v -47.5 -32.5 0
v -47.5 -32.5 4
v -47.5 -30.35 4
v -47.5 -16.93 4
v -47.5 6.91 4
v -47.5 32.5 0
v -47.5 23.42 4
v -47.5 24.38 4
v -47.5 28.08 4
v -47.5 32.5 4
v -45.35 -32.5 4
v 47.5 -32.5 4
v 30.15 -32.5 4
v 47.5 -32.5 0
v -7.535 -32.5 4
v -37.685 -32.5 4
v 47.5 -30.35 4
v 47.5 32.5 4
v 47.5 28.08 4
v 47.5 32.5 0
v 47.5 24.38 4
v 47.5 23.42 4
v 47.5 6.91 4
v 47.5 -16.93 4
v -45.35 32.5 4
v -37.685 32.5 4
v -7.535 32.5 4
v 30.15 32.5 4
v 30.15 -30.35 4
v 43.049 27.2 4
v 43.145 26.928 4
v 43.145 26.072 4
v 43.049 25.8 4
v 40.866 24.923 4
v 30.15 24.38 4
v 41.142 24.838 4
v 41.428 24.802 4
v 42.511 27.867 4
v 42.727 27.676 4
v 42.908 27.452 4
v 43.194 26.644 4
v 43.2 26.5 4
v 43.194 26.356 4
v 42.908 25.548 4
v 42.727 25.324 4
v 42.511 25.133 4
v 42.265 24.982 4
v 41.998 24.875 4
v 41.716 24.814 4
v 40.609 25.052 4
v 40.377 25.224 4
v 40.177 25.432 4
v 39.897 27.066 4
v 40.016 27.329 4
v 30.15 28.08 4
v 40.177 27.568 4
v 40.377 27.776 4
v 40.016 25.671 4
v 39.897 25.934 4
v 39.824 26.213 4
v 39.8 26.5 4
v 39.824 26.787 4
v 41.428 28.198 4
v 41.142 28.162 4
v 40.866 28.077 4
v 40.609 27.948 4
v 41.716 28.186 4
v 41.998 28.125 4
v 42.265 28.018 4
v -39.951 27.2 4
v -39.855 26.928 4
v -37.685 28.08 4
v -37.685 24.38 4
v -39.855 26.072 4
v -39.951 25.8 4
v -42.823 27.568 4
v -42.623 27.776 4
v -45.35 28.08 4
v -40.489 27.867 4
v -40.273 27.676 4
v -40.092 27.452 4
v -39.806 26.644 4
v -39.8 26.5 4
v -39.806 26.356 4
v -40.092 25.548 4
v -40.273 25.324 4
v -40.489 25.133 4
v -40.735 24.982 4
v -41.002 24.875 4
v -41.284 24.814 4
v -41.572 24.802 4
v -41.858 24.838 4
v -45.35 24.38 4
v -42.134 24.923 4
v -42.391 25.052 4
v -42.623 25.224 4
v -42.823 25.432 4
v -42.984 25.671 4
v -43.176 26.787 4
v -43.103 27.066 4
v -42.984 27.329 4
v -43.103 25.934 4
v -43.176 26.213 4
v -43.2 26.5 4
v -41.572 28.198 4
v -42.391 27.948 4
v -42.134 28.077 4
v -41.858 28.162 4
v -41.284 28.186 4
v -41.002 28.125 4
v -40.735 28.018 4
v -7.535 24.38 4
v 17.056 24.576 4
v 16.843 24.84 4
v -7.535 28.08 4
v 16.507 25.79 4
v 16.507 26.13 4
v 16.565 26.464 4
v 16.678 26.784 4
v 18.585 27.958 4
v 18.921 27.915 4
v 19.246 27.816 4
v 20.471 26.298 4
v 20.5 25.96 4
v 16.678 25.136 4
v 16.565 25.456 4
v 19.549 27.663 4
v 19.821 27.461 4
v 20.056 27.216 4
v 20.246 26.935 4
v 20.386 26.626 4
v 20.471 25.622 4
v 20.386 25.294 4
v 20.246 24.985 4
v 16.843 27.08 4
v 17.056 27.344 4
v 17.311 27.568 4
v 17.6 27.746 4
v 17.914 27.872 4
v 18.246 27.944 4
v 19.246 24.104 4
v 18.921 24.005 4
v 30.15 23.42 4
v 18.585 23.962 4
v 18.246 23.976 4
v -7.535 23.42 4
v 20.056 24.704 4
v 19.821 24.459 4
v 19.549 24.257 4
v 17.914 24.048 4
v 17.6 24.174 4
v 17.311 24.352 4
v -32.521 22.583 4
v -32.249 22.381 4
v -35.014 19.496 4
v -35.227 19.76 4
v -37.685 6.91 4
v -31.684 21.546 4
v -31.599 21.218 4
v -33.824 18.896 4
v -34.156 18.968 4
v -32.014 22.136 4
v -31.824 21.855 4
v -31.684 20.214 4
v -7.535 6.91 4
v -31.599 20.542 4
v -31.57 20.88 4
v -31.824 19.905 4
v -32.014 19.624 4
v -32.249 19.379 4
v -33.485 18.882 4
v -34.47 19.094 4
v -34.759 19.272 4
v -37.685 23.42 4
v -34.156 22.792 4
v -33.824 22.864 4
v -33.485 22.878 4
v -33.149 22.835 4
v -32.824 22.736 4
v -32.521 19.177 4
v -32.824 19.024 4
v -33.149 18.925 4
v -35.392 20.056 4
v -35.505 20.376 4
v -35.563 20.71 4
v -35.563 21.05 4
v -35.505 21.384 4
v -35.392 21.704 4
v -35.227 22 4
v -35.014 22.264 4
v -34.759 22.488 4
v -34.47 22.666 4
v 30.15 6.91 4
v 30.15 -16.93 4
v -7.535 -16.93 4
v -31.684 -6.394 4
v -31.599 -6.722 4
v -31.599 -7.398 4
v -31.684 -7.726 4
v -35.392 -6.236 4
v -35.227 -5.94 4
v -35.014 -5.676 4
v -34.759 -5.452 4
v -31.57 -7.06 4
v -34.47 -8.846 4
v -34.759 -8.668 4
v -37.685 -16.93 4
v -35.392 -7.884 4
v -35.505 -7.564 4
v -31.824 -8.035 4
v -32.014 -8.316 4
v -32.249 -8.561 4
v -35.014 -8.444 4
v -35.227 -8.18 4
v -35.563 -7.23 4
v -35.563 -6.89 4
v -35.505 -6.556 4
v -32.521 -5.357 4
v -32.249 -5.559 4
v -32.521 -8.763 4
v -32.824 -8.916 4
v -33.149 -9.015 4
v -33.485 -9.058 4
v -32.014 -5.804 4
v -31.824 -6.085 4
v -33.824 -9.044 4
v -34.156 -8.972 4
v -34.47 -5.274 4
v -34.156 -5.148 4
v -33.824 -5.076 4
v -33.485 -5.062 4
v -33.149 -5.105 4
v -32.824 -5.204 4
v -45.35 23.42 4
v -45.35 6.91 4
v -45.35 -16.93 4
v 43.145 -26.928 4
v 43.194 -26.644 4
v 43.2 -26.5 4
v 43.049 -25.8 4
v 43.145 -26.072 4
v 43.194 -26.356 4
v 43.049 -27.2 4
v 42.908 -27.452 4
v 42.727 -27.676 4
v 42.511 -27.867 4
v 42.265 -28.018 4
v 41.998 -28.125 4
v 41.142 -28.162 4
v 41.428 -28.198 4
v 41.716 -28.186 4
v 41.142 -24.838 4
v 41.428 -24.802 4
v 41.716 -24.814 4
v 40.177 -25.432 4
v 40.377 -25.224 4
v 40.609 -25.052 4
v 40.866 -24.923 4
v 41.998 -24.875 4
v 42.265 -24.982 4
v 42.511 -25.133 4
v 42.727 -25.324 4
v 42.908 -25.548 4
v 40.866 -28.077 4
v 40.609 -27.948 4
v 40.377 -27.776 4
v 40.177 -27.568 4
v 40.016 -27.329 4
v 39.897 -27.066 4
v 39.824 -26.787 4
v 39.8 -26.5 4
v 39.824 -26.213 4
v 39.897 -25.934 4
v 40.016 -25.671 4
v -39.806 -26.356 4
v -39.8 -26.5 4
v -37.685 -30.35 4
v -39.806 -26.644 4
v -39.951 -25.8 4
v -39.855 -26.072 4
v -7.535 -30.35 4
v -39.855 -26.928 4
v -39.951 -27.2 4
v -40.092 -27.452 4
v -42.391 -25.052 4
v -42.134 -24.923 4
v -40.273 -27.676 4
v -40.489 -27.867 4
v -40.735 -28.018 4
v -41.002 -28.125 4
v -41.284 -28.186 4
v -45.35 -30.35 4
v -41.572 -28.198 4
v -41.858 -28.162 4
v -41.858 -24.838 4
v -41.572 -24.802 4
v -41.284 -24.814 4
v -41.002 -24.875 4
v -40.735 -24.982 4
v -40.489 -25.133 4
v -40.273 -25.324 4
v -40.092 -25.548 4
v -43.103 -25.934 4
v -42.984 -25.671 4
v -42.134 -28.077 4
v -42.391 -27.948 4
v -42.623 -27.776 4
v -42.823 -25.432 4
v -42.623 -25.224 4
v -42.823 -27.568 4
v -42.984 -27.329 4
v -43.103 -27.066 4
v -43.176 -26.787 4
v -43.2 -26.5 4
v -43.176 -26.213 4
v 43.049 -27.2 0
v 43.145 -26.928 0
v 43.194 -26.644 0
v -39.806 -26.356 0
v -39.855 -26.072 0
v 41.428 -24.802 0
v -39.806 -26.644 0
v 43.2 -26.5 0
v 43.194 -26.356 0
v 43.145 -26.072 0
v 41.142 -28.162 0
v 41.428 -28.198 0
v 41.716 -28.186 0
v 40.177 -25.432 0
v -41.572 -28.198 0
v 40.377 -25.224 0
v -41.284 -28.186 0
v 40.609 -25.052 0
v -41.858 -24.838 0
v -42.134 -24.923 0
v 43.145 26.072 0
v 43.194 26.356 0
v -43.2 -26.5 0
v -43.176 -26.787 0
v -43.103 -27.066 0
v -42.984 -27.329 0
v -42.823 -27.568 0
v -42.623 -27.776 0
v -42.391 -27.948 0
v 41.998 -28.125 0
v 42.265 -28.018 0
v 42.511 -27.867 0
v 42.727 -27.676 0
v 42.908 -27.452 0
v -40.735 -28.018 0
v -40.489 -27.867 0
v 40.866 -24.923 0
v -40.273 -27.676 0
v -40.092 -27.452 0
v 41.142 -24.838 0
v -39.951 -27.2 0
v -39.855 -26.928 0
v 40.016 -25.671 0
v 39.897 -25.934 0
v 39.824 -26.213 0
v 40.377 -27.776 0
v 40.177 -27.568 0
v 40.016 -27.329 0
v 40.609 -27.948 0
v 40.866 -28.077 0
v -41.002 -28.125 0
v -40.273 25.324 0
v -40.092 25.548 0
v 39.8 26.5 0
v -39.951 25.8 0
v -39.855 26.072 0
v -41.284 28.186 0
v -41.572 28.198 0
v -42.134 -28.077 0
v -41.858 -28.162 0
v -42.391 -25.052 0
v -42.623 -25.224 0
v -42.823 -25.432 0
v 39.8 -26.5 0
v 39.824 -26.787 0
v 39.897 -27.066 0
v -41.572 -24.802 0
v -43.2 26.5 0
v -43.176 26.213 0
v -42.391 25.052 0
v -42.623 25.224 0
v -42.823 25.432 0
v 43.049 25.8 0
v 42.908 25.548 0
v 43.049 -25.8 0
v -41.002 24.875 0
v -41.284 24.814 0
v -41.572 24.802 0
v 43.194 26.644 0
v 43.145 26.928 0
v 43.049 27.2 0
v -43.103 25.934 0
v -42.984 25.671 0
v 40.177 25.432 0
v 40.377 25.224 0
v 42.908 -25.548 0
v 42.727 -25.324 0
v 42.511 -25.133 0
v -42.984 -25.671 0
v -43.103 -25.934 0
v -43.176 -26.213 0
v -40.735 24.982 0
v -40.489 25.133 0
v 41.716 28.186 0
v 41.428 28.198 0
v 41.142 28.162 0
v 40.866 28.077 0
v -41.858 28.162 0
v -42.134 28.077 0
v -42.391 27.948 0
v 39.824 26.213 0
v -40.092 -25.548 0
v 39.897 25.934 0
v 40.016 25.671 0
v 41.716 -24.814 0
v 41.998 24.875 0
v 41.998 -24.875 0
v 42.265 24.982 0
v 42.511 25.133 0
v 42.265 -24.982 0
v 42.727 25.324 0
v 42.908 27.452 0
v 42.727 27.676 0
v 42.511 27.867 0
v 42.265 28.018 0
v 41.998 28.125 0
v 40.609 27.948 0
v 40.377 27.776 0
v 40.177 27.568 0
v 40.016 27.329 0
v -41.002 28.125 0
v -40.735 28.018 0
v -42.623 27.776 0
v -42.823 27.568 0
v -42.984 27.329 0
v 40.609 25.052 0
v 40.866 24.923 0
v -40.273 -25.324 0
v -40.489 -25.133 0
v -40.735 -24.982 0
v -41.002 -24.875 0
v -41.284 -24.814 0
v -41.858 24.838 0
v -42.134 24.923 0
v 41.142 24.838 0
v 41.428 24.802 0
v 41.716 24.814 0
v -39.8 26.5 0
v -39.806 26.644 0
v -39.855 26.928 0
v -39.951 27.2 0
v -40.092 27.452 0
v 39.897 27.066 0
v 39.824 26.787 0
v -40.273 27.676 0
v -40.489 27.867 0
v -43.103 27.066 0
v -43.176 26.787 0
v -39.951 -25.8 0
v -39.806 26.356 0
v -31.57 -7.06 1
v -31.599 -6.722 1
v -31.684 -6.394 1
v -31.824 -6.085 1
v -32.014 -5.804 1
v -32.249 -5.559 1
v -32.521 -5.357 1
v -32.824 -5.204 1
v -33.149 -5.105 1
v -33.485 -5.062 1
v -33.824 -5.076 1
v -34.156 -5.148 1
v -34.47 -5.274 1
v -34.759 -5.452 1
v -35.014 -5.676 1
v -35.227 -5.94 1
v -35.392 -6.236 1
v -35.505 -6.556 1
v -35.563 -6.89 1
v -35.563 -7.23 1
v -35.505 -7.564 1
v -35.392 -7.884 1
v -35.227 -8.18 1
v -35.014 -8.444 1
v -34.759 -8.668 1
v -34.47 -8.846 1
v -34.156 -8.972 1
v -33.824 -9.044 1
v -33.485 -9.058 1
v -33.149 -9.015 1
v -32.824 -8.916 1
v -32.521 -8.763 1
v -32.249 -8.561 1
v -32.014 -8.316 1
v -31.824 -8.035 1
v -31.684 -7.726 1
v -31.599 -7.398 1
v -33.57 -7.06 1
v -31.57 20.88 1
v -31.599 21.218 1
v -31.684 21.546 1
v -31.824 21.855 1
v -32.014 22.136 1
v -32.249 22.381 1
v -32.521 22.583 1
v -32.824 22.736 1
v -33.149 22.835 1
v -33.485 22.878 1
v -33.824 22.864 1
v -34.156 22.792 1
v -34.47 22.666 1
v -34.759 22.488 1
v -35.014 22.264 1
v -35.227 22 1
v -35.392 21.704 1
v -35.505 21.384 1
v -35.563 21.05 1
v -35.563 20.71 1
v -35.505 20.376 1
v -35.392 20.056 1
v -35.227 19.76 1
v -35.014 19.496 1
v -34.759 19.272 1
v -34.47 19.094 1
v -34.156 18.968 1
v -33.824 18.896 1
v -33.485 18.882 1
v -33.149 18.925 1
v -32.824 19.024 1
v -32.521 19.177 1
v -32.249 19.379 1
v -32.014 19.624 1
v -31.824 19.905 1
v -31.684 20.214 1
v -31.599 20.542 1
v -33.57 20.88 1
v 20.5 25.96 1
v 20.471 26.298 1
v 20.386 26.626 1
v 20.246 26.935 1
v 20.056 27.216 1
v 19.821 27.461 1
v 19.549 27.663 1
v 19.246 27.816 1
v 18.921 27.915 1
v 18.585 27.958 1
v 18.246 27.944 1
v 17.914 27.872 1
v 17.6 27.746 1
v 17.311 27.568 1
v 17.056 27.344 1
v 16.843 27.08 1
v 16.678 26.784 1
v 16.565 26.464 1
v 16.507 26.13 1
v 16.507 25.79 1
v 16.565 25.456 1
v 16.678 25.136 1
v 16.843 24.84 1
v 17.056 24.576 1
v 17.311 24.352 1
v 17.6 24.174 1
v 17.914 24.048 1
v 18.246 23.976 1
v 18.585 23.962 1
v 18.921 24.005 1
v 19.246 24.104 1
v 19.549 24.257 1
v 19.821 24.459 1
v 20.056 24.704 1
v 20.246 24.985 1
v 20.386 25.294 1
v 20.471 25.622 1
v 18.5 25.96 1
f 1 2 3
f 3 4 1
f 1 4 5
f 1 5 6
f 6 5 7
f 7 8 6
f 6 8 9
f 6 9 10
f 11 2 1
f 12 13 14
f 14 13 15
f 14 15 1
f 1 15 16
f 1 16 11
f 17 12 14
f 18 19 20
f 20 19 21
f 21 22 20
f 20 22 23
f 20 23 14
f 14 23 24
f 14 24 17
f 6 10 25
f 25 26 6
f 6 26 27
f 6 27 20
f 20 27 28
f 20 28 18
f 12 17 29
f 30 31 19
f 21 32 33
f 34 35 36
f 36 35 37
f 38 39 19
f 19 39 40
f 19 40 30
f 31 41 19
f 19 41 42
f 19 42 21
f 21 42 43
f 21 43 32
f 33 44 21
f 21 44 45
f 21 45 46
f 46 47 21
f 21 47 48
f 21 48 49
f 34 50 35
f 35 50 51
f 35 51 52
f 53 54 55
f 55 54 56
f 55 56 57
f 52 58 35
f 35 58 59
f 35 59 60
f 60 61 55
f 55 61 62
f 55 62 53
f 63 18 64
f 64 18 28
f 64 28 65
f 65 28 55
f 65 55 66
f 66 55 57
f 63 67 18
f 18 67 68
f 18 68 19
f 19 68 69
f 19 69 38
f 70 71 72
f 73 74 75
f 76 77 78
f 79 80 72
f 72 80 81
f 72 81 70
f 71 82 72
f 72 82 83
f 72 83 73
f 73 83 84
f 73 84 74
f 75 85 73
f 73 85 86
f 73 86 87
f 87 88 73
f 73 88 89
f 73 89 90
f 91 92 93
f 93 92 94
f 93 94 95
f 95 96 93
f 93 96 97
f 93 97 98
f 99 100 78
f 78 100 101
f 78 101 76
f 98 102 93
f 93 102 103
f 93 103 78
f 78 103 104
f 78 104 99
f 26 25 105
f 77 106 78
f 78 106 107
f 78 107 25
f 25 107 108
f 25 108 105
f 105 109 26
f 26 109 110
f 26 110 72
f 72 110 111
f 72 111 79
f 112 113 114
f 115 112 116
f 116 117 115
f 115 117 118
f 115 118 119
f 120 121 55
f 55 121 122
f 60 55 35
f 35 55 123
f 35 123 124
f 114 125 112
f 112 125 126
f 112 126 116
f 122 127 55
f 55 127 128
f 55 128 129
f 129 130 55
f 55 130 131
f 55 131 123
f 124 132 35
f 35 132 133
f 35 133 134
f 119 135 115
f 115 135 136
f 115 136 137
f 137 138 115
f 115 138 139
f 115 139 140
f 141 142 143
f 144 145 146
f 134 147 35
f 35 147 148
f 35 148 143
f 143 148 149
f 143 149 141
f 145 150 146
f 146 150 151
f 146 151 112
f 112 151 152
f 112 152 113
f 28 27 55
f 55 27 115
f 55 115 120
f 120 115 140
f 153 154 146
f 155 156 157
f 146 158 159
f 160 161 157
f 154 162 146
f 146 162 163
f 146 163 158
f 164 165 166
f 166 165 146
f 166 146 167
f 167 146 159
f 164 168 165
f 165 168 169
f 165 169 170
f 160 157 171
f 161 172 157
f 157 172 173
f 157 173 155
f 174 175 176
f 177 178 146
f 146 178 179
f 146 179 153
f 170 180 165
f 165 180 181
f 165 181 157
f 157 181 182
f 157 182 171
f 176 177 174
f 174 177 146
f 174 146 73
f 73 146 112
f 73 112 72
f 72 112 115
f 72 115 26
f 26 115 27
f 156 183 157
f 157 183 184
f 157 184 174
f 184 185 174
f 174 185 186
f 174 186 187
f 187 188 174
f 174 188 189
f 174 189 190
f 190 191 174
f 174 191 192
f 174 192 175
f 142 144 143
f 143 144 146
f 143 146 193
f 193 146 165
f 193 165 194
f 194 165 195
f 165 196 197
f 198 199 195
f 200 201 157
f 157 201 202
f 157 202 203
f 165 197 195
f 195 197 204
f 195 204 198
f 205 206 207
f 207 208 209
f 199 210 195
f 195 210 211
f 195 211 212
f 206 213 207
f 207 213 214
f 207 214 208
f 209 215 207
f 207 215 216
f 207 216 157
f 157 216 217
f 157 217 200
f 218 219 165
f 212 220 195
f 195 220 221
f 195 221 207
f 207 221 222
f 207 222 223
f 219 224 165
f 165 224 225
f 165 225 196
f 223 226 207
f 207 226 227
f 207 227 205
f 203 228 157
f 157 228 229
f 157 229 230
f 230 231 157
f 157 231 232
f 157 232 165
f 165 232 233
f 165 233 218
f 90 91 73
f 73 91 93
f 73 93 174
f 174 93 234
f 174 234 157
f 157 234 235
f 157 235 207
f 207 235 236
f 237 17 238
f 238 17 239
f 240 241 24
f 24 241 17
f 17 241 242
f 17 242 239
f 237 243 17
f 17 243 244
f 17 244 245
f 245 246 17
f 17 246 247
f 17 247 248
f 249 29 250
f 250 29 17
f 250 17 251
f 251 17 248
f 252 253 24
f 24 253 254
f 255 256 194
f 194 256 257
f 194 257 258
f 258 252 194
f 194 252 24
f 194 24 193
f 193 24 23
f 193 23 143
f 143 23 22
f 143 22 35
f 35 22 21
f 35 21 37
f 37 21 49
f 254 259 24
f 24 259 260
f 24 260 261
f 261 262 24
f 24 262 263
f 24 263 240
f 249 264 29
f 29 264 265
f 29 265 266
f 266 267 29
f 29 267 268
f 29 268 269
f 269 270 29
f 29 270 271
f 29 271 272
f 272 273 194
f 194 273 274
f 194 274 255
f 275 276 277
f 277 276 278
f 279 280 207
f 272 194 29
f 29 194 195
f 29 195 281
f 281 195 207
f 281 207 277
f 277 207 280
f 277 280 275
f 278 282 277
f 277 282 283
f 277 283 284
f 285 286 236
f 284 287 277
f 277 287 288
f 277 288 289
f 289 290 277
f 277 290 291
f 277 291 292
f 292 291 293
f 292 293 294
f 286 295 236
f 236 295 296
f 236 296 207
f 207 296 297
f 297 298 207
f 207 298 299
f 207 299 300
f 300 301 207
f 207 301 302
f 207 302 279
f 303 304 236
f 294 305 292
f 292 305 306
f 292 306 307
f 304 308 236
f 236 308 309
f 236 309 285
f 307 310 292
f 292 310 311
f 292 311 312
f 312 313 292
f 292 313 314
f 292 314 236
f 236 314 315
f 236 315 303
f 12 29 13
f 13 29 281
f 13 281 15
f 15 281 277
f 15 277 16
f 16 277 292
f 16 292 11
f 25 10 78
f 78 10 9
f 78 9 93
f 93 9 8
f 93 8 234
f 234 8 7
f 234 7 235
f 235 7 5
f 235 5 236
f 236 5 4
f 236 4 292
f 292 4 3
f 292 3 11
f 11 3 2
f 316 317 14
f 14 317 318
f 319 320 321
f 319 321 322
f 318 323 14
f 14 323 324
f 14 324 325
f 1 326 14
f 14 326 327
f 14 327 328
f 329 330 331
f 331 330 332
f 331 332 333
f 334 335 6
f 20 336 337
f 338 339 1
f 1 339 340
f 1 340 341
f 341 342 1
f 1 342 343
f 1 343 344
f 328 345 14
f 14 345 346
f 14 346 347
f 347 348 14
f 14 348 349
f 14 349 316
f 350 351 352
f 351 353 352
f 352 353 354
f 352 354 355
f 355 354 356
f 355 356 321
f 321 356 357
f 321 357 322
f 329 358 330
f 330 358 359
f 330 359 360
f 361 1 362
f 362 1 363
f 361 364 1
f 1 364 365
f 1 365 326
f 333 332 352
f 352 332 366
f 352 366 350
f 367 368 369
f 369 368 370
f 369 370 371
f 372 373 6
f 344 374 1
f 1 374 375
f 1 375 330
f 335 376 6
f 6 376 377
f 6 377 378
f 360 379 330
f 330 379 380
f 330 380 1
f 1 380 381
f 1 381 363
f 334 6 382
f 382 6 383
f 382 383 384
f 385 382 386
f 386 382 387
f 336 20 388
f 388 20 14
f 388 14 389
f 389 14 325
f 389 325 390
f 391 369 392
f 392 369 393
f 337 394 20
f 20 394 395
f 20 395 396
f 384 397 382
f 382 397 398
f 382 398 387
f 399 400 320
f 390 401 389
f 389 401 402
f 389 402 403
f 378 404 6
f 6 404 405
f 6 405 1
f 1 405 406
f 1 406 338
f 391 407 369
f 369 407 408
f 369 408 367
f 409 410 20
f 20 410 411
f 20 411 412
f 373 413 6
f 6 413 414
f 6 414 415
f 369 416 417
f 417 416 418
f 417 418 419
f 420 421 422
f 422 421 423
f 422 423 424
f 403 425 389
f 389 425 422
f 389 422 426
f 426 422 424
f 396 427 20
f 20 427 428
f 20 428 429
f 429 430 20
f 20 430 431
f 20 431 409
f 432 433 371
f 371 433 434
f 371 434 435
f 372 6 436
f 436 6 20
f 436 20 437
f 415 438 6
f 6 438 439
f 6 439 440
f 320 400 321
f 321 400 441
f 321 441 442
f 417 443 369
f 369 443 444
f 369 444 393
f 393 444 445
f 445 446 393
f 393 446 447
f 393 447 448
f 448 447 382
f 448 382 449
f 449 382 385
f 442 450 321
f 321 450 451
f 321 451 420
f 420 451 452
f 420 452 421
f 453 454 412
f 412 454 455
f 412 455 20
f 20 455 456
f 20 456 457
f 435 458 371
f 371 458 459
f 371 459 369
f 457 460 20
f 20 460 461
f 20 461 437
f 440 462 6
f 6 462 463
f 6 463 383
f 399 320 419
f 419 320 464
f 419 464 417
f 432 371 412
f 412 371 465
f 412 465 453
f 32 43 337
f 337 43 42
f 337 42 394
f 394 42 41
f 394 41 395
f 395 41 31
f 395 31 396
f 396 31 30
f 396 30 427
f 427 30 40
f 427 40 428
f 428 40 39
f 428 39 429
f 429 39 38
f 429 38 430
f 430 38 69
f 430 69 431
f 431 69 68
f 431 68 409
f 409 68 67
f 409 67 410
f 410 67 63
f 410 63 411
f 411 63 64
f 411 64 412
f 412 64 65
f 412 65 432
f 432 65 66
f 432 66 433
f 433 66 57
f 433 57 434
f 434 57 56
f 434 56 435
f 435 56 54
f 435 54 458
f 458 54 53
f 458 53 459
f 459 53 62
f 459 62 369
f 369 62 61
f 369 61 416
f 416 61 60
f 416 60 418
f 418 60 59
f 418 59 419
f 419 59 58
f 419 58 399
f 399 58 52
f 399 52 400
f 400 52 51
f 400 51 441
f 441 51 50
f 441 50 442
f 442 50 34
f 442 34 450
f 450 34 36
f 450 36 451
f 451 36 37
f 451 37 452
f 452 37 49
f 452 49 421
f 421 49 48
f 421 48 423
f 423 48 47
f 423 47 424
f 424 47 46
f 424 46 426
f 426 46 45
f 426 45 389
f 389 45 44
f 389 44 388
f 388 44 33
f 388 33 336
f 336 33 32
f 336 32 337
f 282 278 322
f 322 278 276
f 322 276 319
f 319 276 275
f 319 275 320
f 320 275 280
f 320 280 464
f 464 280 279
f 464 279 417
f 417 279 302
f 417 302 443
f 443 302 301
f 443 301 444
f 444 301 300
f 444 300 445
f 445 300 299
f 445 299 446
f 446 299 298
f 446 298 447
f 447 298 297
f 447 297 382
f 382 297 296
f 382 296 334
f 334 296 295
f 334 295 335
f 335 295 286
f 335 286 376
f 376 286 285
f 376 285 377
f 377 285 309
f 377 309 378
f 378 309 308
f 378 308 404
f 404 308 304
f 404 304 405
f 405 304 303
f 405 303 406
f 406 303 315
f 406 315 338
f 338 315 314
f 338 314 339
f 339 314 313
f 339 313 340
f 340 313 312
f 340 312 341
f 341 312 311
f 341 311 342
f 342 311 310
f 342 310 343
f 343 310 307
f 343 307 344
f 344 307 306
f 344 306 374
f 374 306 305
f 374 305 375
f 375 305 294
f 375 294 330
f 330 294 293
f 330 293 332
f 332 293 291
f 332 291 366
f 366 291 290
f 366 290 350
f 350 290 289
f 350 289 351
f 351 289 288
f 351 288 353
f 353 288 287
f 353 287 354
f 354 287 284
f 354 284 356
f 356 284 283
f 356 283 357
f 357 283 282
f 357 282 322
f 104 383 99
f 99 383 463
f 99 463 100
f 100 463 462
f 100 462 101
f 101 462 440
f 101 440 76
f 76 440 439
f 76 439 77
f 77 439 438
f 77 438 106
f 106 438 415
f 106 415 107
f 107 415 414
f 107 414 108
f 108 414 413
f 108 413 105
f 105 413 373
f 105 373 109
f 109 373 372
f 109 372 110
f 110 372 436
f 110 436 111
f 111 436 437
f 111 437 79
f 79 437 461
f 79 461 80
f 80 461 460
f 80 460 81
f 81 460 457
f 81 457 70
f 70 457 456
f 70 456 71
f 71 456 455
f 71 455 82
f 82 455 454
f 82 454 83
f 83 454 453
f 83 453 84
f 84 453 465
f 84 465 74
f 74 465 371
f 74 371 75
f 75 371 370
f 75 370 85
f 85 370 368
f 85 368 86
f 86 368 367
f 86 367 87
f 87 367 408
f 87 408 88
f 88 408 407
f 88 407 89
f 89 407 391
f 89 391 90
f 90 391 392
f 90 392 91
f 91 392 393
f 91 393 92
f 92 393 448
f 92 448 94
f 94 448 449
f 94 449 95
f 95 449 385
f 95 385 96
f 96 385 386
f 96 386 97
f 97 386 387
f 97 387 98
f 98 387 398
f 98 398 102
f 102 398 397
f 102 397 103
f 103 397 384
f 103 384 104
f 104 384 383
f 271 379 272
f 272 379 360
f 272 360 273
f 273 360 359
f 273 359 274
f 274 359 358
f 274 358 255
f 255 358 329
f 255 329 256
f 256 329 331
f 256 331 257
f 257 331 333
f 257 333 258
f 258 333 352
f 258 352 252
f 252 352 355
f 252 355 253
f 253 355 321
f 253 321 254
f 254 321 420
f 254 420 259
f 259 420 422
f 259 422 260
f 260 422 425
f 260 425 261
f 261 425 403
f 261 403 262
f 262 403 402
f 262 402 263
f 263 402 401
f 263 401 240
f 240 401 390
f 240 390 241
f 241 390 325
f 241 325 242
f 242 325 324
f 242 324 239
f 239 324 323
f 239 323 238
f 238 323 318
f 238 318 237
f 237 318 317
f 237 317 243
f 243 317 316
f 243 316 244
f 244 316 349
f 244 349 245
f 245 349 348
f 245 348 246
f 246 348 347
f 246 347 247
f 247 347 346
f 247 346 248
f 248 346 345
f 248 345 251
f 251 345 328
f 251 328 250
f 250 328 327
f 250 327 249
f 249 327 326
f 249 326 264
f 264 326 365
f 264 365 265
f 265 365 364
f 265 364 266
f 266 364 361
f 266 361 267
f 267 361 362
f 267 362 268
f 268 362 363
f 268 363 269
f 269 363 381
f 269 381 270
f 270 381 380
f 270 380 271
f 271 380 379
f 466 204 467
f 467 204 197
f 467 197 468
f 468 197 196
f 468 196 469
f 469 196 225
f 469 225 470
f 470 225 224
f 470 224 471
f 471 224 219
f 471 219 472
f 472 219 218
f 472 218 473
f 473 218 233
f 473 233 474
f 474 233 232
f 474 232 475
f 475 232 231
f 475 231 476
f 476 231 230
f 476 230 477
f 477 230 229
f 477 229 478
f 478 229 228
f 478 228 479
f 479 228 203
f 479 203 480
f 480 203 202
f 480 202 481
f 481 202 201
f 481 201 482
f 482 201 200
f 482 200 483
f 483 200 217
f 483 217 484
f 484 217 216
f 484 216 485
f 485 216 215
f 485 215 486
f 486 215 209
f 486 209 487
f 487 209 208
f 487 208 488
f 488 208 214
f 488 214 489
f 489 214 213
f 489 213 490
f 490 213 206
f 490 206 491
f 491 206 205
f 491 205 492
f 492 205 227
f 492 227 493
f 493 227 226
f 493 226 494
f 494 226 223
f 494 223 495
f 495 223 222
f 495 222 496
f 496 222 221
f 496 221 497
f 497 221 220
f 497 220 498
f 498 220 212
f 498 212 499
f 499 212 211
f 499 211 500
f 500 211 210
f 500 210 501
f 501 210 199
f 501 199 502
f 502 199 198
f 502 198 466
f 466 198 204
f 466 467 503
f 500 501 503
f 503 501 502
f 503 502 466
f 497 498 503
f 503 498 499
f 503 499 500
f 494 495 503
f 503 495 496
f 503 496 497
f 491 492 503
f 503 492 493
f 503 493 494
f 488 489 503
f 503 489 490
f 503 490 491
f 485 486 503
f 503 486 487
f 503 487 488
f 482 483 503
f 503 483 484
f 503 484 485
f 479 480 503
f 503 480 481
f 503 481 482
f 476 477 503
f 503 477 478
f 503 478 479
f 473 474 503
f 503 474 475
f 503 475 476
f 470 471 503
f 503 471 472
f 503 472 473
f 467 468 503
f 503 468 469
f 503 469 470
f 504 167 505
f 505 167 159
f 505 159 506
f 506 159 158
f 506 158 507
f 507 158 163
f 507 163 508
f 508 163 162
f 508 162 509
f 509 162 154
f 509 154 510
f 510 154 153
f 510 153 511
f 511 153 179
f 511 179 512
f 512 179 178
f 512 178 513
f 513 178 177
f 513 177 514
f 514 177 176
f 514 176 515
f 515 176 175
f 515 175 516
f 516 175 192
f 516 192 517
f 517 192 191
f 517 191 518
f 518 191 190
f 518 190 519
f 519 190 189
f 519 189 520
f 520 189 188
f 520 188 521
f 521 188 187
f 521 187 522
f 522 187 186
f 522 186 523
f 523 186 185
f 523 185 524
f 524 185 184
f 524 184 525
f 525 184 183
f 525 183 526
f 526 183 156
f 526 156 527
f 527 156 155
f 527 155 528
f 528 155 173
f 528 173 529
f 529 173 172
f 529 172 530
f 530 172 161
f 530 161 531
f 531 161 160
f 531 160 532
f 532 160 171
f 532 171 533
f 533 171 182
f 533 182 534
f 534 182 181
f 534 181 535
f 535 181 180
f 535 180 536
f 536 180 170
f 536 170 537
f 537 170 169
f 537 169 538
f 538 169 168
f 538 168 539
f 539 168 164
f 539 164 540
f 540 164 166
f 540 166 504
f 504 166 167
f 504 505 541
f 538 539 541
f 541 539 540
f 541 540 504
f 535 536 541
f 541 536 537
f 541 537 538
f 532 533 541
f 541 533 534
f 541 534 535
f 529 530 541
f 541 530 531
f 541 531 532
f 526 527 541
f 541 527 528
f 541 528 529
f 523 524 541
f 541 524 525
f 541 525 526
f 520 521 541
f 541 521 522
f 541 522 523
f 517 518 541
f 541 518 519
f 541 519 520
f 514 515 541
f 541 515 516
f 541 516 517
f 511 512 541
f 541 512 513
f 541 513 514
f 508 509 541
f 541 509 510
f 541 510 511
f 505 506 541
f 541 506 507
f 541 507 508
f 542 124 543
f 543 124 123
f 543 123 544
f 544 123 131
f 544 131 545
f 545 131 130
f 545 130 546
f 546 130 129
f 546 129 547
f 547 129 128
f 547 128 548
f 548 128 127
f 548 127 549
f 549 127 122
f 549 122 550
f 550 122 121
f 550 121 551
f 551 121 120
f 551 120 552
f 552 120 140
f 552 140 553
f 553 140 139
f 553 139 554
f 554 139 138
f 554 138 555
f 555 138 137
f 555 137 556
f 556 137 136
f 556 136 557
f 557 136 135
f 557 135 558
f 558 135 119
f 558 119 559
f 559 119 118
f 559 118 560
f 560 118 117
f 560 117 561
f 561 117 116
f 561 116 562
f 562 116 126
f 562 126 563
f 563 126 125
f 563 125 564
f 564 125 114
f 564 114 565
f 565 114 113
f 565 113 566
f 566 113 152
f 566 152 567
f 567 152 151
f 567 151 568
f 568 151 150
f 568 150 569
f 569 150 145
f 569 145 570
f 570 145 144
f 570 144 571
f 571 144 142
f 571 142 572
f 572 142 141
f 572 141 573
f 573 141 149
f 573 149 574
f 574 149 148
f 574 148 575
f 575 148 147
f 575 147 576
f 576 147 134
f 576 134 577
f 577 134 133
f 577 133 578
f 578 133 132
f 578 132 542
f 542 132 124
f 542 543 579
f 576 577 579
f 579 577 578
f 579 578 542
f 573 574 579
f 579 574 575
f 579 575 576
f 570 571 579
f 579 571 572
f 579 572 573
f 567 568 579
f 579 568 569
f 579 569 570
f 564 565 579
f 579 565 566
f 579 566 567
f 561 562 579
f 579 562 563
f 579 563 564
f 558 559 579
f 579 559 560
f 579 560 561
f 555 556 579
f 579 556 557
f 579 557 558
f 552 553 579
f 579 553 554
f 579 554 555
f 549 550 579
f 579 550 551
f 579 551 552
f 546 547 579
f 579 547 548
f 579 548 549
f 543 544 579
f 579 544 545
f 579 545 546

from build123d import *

# Parameters (mm, degrees)
ESQUISSE1_W             = 95
ESQUISSE1_H             = 65
BOSS_EXTRU_1_DEPTH      = 4
ESQUISSE2_R             = 1.7
ENL_V_MAT_EXTRU_1_DEPTH = 5
ESQUISSE3_R             = 2
ENL_V_MAT_EXTRU_2_DEPTH = 3


with BuildPart() as part:
    # Esquisse1 → Boss.-Extru.1 (new body)
    with BuildSketch(Plane.XY):
        Rectangle(ESQUISSE1_W, ESQUISSE1_H)
    extrude(amount=BOSS_EXTRU_1_DEPTH)

    # Esquisse2 → Enlèv. mat.-Extru.1 (cut)
    with BuildSketch(Plane(origin=(0, 0, 0), x_dir=(-1, 0, 0), z_dir=(0, 0, -1))):
        with Locations((-41.5, 26.5)):
            Circle(ESQUISSE2_R)
        with Locations(Location((41.5, 26.5, 0), (0, 0, 180))):
            Circle(ESQUISSE2_R)
        with Locations(Location((-41.5, -26.5, 0), (0, 0, 180))):
            Circle(ESQUISSE2_R)
        with Locations((41.5, -26.5)):
            Circle(ESQUISSE2_R)
    extrude(amount=-ENL_V_MAT_EXTRU_1_DEPTH, mode=Mode.SUBTRACT)

    # Esquisse3 → Enlèv. mat.-Extru.2 (cut)
    with BuildSketch(Plane.XY.offset(4)):
        with Locations((18.5, 25.96)):
            Circle(ESQUISSE3_R)
        with Locations((-33.57, 20.88)):
            Circle(ESQUISSE3_R)
        with Locations((-33.57, -7.06)):
            Circle(ESQUISSE3_R)
    extrude(amount=-ENL_V_MAT_EXTRU_2_DEPTH, mode=Mode.SUBTRACT)


solid = part.part
